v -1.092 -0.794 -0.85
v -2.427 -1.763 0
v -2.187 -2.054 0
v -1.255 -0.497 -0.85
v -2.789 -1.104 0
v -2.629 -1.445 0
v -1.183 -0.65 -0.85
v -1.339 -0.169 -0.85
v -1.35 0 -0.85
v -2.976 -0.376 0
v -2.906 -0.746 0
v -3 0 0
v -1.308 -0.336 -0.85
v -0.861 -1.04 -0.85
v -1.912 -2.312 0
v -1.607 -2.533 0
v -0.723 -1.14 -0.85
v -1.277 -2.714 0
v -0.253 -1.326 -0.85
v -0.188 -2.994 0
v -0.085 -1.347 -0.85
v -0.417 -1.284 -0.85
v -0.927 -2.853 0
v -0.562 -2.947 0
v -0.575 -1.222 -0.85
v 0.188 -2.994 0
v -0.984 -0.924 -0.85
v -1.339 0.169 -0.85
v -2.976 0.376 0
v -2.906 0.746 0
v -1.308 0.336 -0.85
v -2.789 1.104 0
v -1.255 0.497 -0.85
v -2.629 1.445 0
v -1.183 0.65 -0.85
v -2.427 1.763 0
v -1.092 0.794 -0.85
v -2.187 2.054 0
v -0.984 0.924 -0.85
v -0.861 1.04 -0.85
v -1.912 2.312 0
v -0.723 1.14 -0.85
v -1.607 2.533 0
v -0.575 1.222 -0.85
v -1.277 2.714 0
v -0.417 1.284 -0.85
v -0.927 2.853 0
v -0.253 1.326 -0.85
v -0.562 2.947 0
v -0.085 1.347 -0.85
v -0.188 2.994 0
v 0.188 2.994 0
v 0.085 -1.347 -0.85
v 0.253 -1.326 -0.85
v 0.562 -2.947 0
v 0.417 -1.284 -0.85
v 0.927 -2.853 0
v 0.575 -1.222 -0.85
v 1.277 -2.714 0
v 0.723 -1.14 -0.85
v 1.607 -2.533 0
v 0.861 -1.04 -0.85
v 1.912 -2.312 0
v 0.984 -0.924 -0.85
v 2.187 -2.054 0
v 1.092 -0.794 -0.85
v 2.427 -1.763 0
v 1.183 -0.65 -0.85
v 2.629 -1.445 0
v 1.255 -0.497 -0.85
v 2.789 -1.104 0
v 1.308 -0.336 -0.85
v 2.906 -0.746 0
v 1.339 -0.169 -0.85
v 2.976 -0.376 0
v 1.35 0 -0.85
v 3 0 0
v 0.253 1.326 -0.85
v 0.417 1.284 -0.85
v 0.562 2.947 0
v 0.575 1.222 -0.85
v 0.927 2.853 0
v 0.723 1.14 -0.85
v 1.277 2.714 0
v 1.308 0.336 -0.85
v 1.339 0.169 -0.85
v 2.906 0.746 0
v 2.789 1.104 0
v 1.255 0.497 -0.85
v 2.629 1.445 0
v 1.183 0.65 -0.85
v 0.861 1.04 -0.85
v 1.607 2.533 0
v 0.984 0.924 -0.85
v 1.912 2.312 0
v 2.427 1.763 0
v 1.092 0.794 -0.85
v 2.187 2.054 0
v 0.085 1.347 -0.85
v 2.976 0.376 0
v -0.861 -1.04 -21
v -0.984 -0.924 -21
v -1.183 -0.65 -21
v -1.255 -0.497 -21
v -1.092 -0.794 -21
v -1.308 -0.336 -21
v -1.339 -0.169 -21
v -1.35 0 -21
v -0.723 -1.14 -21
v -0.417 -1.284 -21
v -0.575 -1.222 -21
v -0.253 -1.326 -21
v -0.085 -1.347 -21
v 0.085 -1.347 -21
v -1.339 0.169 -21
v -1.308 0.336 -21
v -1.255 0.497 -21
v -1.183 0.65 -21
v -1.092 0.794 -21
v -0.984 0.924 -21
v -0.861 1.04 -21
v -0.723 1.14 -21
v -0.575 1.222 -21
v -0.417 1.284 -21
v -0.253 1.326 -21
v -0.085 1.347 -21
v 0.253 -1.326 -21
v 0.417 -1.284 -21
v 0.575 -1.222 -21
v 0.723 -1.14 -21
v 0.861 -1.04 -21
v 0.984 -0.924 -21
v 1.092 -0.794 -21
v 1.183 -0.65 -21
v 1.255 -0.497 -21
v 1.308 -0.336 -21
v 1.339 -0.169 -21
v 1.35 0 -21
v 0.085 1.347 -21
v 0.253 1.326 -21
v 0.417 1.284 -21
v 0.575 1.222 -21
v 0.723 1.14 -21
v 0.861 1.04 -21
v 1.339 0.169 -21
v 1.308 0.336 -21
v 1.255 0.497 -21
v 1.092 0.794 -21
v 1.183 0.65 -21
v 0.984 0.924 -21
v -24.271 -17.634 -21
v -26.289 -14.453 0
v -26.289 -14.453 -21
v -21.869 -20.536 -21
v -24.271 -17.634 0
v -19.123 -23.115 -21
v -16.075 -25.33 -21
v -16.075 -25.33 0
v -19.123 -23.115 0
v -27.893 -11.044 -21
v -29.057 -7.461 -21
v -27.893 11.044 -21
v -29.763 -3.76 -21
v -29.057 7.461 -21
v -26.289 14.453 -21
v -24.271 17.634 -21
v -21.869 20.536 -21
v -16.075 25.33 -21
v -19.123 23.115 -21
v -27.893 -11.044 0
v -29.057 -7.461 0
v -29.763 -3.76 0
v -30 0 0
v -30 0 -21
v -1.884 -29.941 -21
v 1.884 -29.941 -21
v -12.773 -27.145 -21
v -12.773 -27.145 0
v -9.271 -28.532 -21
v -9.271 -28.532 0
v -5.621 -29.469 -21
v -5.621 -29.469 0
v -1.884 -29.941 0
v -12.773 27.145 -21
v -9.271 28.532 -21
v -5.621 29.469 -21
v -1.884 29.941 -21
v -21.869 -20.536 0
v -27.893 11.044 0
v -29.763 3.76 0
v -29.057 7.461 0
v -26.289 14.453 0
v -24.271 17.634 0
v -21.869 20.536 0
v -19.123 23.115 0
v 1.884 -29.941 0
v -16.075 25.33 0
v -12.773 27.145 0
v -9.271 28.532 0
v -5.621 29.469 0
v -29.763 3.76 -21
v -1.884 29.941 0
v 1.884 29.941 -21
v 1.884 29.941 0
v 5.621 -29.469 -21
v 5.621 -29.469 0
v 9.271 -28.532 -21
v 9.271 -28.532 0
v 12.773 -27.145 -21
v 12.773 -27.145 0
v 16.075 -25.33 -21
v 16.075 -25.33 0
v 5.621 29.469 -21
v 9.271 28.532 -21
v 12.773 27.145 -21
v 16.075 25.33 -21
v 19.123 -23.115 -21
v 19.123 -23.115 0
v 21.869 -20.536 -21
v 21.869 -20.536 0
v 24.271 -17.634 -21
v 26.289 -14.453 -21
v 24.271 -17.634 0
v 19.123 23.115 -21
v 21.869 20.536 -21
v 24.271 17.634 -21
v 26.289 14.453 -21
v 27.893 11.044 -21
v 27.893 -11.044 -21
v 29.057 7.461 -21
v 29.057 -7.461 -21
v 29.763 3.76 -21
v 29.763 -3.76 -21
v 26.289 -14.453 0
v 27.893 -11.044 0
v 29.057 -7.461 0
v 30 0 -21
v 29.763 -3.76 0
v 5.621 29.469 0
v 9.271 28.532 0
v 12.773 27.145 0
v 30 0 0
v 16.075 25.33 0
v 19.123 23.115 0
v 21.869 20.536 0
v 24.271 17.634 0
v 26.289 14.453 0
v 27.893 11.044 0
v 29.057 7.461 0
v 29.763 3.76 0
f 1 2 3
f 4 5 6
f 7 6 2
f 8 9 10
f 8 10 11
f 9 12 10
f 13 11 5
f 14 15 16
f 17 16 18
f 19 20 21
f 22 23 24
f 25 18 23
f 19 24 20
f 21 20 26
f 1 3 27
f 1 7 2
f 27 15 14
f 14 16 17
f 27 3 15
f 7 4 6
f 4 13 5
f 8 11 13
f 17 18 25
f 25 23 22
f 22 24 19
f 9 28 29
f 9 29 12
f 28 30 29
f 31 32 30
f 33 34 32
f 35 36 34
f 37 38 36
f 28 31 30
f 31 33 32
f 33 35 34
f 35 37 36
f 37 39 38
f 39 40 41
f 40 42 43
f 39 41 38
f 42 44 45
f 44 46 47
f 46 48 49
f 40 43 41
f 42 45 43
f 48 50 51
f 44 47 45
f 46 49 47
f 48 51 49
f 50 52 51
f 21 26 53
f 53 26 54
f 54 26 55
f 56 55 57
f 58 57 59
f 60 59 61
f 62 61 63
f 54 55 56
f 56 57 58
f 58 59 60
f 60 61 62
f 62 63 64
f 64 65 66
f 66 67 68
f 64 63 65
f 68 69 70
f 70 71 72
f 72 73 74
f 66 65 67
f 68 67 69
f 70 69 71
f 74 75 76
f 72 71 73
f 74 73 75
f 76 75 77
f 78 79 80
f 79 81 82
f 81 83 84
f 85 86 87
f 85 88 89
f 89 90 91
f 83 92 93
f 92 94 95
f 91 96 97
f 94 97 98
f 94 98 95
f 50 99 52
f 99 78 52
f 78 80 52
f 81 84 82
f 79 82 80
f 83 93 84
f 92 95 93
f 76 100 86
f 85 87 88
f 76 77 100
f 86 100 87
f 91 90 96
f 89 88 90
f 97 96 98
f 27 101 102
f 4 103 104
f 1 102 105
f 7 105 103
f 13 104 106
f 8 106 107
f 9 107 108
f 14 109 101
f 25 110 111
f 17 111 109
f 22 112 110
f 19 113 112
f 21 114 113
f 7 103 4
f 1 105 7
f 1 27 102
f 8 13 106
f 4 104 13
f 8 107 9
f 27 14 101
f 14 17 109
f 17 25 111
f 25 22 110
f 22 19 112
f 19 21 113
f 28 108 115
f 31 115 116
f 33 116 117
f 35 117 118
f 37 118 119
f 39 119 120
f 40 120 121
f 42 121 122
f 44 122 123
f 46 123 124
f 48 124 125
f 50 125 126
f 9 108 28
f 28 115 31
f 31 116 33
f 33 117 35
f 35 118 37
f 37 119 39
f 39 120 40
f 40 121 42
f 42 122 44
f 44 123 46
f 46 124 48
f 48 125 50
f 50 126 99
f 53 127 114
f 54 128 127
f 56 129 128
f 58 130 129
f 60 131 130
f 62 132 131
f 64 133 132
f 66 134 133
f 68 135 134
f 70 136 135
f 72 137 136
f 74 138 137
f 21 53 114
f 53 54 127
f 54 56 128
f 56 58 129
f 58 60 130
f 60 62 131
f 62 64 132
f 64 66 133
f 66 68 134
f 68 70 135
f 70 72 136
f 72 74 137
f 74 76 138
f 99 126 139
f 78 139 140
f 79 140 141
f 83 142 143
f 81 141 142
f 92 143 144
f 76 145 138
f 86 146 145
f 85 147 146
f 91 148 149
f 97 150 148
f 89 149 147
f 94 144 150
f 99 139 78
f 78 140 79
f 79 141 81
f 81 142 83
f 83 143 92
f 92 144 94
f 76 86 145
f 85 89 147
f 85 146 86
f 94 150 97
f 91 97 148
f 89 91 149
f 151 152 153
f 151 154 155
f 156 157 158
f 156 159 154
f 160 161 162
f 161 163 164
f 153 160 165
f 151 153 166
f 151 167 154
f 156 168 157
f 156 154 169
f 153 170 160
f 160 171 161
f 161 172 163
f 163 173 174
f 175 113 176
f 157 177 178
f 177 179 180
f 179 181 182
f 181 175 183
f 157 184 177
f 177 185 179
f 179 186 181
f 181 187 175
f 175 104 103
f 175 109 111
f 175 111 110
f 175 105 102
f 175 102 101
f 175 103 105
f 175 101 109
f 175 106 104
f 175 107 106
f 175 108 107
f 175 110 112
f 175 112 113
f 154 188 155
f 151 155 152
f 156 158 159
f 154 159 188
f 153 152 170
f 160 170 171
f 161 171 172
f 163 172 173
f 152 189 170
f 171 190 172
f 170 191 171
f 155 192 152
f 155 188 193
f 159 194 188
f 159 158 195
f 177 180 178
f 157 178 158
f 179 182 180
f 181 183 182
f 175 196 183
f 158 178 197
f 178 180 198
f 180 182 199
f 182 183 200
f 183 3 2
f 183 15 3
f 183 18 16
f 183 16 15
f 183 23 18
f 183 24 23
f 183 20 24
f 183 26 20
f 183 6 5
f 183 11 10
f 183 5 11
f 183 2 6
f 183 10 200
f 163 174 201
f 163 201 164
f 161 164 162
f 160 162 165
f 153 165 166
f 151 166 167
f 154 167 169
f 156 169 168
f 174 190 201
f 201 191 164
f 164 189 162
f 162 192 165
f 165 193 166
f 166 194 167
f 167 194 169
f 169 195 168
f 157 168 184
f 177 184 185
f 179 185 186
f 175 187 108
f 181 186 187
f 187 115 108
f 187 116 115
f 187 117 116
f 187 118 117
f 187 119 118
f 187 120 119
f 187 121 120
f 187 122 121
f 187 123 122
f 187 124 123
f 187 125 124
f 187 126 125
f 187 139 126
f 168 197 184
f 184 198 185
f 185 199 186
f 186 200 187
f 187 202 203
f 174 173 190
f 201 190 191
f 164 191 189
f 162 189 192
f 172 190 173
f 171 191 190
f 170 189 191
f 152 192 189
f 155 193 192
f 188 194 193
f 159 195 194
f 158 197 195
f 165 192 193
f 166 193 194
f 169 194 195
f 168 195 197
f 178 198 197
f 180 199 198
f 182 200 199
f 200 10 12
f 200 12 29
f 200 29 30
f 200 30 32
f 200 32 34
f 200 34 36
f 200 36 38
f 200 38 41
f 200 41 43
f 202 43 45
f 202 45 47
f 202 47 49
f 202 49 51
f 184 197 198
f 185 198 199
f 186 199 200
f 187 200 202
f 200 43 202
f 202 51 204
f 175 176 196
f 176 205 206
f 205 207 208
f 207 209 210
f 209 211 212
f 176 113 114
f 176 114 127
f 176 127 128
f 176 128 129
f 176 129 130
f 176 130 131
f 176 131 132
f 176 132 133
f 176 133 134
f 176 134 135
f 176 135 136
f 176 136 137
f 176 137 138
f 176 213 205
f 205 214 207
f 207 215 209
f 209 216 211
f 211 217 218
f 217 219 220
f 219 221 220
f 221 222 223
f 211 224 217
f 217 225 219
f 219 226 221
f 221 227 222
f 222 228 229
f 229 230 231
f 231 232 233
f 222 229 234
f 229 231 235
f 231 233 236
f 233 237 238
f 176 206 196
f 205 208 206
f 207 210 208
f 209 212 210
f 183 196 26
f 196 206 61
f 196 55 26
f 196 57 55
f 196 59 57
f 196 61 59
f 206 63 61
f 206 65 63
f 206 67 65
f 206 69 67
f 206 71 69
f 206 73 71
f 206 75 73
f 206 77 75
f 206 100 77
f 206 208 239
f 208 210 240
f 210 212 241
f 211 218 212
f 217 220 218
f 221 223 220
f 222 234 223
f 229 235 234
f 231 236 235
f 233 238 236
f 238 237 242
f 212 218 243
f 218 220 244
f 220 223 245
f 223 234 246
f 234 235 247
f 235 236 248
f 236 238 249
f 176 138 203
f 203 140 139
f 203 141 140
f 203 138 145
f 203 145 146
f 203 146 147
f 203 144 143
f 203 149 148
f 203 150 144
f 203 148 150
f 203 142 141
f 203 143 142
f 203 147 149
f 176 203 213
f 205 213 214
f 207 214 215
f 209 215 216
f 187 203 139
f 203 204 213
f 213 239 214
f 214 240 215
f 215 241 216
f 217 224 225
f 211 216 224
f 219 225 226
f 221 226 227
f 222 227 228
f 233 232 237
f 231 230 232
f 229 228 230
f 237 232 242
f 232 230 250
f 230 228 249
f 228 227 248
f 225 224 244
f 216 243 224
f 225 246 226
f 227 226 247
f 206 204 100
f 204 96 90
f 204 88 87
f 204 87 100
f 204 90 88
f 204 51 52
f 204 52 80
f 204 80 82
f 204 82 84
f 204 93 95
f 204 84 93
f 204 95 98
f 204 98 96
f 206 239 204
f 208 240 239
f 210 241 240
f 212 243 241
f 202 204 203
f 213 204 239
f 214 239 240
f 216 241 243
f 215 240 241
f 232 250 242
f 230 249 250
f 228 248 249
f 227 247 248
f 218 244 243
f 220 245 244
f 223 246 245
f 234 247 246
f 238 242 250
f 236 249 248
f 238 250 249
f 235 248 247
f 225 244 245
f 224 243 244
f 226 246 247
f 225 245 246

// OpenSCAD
$fn = 50;

difference() {
	union() {
		translate(v = [0, 0, -21.0]) {
			cylinder(h = 21, r = 30.0);
		}
	}
	union() {
		translate(v = [0, 0, 0]) {
			rotate(a = [0, 0, 0]) {
				difference() {
					union() {
						translate(v = [0, 0, -24.0]) {
							cylinder(h = 24, r = 1.0);
						}
						translate(v = [0, 0, -0.85]) {
							cylinder(h = 0.85, r1 = 1.35, r2 = 3.0);
						}
						translate(v = [0, 0, -24.0]) {
							cylinder(h = 24, r = 1.35);
						}
						translate(v = [0, 0, -24.0]) {
							cylinder(h = 24, r = 1.0);
						}
					}
					union();
				}
			}
		}
	}
}
